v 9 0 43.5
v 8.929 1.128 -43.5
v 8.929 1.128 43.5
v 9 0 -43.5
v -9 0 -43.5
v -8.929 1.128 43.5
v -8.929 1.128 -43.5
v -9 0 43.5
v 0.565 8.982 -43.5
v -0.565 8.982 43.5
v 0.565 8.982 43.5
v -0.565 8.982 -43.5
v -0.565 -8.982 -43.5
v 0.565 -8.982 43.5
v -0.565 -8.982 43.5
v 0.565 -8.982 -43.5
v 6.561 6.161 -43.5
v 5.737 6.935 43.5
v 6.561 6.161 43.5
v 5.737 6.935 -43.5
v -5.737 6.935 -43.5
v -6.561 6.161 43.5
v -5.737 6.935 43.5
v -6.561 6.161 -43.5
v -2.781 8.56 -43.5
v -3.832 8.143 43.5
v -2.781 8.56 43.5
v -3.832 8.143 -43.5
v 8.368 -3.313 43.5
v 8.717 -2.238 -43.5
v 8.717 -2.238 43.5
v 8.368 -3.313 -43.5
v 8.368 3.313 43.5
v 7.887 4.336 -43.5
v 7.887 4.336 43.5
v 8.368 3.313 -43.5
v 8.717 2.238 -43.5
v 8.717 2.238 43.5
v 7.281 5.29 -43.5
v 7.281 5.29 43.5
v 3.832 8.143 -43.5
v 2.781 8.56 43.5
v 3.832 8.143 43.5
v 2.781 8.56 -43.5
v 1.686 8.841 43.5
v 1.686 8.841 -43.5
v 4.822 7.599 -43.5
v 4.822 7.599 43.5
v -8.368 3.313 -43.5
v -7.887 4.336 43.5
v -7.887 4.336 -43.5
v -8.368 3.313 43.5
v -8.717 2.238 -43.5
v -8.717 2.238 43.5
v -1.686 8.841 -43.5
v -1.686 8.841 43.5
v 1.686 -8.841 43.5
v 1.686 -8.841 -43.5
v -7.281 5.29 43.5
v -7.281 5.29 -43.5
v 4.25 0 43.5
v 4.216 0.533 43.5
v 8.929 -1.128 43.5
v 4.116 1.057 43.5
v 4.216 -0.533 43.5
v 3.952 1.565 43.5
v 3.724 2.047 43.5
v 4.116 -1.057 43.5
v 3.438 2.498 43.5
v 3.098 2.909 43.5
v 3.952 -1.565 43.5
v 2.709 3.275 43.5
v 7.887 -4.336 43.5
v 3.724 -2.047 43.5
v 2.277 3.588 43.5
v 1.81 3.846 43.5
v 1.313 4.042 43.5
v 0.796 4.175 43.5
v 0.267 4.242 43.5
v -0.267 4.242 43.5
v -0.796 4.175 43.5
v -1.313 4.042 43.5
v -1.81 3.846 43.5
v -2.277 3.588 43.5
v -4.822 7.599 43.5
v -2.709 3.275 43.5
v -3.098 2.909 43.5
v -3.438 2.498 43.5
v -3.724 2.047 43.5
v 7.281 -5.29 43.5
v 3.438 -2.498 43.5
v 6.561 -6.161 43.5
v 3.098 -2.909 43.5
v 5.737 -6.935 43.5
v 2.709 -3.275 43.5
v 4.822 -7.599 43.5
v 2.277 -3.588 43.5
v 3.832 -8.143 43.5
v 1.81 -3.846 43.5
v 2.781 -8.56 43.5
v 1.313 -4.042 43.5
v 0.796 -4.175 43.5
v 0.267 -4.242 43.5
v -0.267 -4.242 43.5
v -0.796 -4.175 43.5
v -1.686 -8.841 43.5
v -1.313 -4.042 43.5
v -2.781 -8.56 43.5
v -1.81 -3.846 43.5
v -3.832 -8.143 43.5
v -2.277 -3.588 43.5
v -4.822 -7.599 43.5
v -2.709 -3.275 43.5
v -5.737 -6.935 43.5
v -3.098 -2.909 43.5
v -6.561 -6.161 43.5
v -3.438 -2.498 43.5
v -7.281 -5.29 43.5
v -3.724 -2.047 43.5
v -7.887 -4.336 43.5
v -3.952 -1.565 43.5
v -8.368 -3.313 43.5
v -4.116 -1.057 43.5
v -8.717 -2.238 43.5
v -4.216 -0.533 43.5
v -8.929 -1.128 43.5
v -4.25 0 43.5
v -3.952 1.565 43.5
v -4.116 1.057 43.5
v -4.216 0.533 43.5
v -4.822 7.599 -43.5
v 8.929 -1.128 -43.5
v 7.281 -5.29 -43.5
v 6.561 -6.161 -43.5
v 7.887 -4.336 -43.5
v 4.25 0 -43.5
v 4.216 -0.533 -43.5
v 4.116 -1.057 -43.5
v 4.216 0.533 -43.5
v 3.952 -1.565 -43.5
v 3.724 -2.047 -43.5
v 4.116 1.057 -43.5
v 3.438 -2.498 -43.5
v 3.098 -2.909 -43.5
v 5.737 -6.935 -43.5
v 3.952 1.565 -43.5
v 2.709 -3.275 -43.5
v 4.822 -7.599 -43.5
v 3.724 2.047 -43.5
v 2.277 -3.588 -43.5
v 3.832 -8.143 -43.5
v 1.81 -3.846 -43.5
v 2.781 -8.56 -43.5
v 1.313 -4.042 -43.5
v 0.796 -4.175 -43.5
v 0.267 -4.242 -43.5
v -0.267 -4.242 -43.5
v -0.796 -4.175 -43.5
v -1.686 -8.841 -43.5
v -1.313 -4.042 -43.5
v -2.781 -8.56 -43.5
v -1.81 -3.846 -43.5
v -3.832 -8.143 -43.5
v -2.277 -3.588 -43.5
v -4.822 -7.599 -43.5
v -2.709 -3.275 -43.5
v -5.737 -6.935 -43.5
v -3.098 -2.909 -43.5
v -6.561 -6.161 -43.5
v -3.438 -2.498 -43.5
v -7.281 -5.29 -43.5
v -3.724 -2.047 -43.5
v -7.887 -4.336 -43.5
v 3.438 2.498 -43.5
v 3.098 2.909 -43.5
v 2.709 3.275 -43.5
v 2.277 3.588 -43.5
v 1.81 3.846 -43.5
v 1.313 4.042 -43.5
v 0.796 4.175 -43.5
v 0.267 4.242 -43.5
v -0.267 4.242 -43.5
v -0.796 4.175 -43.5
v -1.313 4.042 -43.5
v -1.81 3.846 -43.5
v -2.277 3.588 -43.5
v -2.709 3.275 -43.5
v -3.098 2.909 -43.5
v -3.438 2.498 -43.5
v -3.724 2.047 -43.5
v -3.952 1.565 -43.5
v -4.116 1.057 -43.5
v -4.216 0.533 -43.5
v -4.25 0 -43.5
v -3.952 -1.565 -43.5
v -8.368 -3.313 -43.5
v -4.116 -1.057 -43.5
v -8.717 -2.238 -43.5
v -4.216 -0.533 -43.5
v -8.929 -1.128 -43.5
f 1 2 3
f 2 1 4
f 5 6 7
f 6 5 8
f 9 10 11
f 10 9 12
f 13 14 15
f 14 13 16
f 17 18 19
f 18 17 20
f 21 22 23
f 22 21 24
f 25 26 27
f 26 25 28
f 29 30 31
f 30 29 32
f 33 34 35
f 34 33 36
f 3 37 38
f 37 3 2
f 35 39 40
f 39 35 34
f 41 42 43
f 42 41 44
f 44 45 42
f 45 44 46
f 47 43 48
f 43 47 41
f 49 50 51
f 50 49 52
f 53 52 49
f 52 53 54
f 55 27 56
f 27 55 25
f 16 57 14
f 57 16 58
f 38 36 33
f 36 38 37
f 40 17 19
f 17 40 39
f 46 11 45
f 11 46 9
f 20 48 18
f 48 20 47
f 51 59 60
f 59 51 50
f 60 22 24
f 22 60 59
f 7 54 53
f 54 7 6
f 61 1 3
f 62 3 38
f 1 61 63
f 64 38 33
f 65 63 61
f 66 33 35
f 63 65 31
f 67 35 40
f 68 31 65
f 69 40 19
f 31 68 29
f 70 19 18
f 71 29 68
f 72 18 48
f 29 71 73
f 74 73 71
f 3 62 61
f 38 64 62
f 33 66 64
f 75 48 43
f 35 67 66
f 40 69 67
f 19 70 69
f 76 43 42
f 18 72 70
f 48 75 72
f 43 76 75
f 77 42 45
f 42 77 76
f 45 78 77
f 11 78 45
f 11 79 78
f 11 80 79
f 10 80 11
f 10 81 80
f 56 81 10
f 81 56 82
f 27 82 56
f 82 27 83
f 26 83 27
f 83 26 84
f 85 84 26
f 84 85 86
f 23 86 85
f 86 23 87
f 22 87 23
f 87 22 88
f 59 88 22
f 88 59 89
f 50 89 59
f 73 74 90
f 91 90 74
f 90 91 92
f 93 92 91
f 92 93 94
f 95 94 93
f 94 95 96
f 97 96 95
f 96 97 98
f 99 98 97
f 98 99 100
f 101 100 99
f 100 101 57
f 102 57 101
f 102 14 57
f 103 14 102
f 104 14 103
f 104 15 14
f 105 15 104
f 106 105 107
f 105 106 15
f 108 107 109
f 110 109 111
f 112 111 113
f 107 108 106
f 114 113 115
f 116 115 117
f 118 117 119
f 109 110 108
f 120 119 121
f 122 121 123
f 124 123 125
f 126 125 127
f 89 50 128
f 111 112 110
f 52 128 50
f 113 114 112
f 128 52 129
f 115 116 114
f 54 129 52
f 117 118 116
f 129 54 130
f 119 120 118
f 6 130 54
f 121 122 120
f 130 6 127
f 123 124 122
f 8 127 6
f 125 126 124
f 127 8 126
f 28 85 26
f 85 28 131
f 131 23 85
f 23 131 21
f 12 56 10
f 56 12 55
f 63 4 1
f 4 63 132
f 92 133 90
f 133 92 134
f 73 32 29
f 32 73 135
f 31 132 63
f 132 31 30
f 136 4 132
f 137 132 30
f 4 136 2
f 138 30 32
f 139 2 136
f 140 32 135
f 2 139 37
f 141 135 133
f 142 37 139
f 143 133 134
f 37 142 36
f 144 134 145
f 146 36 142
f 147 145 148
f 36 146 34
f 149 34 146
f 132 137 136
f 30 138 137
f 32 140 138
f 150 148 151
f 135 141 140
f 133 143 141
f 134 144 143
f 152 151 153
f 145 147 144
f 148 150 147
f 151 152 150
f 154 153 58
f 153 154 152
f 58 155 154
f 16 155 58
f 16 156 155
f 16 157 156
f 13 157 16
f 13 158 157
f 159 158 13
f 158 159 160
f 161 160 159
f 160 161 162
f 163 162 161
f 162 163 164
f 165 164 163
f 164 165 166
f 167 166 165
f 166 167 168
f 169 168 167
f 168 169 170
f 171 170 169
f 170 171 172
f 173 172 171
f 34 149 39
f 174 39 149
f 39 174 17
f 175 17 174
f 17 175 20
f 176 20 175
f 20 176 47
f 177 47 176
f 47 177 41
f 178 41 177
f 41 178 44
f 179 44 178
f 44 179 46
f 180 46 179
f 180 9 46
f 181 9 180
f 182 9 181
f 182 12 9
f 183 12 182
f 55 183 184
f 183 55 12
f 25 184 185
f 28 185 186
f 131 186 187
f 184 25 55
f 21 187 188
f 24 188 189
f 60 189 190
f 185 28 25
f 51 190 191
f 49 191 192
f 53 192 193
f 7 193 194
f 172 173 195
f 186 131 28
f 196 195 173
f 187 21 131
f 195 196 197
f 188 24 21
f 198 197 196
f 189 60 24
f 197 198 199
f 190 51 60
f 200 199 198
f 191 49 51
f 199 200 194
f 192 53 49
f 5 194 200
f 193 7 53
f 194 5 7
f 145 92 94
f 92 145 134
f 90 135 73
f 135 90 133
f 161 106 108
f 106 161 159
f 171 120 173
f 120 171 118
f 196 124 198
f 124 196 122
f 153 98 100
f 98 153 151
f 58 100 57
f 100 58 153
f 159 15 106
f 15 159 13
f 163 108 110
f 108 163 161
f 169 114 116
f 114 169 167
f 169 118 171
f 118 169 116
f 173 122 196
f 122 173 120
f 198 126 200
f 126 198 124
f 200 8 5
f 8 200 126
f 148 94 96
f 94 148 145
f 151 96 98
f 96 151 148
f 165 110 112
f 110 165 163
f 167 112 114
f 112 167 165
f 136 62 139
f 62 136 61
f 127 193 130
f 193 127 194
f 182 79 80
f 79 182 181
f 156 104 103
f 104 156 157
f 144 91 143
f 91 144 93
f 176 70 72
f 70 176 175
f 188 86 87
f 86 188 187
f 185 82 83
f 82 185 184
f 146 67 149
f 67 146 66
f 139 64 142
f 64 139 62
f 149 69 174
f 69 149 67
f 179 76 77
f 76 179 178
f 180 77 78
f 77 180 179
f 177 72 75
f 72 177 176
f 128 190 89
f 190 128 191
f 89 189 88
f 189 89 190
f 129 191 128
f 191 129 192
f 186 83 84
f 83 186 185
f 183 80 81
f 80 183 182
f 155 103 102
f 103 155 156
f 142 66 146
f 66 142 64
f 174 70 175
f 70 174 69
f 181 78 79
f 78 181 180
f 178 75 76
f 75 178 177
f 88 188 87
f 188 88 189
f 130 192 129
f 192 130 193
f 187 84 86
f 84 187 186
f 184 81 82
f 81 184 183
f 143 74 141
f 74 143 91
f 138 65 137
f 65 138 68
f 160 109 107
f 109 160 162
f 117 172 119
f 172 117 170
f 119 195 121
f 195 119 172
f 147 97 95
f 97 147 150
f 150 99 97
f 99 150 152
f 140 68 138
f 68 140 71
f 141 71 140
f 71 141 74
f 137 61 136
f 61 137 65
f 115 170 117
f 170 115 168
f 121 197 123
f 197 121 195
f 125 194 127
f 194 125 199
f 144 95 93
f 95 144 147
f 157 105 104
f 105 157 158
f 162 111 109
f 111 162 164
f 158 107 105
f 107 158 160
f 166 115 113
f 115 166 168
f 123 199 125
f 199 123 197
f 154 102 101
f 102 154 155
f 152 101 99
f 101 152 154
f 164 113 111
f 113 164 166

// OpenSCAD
$fn = 50;


difference() {
	union() {
		translate(v = [0, 0, -43.5000000000]) {
			cylinder(h = 87, r = 9.0000000000);
		}
	}
	union() {
		translate(v = [0, 0, -100.0000000000]) {
			cylinder(h = 200, r = 4.2500000000);
		}
	}
}
